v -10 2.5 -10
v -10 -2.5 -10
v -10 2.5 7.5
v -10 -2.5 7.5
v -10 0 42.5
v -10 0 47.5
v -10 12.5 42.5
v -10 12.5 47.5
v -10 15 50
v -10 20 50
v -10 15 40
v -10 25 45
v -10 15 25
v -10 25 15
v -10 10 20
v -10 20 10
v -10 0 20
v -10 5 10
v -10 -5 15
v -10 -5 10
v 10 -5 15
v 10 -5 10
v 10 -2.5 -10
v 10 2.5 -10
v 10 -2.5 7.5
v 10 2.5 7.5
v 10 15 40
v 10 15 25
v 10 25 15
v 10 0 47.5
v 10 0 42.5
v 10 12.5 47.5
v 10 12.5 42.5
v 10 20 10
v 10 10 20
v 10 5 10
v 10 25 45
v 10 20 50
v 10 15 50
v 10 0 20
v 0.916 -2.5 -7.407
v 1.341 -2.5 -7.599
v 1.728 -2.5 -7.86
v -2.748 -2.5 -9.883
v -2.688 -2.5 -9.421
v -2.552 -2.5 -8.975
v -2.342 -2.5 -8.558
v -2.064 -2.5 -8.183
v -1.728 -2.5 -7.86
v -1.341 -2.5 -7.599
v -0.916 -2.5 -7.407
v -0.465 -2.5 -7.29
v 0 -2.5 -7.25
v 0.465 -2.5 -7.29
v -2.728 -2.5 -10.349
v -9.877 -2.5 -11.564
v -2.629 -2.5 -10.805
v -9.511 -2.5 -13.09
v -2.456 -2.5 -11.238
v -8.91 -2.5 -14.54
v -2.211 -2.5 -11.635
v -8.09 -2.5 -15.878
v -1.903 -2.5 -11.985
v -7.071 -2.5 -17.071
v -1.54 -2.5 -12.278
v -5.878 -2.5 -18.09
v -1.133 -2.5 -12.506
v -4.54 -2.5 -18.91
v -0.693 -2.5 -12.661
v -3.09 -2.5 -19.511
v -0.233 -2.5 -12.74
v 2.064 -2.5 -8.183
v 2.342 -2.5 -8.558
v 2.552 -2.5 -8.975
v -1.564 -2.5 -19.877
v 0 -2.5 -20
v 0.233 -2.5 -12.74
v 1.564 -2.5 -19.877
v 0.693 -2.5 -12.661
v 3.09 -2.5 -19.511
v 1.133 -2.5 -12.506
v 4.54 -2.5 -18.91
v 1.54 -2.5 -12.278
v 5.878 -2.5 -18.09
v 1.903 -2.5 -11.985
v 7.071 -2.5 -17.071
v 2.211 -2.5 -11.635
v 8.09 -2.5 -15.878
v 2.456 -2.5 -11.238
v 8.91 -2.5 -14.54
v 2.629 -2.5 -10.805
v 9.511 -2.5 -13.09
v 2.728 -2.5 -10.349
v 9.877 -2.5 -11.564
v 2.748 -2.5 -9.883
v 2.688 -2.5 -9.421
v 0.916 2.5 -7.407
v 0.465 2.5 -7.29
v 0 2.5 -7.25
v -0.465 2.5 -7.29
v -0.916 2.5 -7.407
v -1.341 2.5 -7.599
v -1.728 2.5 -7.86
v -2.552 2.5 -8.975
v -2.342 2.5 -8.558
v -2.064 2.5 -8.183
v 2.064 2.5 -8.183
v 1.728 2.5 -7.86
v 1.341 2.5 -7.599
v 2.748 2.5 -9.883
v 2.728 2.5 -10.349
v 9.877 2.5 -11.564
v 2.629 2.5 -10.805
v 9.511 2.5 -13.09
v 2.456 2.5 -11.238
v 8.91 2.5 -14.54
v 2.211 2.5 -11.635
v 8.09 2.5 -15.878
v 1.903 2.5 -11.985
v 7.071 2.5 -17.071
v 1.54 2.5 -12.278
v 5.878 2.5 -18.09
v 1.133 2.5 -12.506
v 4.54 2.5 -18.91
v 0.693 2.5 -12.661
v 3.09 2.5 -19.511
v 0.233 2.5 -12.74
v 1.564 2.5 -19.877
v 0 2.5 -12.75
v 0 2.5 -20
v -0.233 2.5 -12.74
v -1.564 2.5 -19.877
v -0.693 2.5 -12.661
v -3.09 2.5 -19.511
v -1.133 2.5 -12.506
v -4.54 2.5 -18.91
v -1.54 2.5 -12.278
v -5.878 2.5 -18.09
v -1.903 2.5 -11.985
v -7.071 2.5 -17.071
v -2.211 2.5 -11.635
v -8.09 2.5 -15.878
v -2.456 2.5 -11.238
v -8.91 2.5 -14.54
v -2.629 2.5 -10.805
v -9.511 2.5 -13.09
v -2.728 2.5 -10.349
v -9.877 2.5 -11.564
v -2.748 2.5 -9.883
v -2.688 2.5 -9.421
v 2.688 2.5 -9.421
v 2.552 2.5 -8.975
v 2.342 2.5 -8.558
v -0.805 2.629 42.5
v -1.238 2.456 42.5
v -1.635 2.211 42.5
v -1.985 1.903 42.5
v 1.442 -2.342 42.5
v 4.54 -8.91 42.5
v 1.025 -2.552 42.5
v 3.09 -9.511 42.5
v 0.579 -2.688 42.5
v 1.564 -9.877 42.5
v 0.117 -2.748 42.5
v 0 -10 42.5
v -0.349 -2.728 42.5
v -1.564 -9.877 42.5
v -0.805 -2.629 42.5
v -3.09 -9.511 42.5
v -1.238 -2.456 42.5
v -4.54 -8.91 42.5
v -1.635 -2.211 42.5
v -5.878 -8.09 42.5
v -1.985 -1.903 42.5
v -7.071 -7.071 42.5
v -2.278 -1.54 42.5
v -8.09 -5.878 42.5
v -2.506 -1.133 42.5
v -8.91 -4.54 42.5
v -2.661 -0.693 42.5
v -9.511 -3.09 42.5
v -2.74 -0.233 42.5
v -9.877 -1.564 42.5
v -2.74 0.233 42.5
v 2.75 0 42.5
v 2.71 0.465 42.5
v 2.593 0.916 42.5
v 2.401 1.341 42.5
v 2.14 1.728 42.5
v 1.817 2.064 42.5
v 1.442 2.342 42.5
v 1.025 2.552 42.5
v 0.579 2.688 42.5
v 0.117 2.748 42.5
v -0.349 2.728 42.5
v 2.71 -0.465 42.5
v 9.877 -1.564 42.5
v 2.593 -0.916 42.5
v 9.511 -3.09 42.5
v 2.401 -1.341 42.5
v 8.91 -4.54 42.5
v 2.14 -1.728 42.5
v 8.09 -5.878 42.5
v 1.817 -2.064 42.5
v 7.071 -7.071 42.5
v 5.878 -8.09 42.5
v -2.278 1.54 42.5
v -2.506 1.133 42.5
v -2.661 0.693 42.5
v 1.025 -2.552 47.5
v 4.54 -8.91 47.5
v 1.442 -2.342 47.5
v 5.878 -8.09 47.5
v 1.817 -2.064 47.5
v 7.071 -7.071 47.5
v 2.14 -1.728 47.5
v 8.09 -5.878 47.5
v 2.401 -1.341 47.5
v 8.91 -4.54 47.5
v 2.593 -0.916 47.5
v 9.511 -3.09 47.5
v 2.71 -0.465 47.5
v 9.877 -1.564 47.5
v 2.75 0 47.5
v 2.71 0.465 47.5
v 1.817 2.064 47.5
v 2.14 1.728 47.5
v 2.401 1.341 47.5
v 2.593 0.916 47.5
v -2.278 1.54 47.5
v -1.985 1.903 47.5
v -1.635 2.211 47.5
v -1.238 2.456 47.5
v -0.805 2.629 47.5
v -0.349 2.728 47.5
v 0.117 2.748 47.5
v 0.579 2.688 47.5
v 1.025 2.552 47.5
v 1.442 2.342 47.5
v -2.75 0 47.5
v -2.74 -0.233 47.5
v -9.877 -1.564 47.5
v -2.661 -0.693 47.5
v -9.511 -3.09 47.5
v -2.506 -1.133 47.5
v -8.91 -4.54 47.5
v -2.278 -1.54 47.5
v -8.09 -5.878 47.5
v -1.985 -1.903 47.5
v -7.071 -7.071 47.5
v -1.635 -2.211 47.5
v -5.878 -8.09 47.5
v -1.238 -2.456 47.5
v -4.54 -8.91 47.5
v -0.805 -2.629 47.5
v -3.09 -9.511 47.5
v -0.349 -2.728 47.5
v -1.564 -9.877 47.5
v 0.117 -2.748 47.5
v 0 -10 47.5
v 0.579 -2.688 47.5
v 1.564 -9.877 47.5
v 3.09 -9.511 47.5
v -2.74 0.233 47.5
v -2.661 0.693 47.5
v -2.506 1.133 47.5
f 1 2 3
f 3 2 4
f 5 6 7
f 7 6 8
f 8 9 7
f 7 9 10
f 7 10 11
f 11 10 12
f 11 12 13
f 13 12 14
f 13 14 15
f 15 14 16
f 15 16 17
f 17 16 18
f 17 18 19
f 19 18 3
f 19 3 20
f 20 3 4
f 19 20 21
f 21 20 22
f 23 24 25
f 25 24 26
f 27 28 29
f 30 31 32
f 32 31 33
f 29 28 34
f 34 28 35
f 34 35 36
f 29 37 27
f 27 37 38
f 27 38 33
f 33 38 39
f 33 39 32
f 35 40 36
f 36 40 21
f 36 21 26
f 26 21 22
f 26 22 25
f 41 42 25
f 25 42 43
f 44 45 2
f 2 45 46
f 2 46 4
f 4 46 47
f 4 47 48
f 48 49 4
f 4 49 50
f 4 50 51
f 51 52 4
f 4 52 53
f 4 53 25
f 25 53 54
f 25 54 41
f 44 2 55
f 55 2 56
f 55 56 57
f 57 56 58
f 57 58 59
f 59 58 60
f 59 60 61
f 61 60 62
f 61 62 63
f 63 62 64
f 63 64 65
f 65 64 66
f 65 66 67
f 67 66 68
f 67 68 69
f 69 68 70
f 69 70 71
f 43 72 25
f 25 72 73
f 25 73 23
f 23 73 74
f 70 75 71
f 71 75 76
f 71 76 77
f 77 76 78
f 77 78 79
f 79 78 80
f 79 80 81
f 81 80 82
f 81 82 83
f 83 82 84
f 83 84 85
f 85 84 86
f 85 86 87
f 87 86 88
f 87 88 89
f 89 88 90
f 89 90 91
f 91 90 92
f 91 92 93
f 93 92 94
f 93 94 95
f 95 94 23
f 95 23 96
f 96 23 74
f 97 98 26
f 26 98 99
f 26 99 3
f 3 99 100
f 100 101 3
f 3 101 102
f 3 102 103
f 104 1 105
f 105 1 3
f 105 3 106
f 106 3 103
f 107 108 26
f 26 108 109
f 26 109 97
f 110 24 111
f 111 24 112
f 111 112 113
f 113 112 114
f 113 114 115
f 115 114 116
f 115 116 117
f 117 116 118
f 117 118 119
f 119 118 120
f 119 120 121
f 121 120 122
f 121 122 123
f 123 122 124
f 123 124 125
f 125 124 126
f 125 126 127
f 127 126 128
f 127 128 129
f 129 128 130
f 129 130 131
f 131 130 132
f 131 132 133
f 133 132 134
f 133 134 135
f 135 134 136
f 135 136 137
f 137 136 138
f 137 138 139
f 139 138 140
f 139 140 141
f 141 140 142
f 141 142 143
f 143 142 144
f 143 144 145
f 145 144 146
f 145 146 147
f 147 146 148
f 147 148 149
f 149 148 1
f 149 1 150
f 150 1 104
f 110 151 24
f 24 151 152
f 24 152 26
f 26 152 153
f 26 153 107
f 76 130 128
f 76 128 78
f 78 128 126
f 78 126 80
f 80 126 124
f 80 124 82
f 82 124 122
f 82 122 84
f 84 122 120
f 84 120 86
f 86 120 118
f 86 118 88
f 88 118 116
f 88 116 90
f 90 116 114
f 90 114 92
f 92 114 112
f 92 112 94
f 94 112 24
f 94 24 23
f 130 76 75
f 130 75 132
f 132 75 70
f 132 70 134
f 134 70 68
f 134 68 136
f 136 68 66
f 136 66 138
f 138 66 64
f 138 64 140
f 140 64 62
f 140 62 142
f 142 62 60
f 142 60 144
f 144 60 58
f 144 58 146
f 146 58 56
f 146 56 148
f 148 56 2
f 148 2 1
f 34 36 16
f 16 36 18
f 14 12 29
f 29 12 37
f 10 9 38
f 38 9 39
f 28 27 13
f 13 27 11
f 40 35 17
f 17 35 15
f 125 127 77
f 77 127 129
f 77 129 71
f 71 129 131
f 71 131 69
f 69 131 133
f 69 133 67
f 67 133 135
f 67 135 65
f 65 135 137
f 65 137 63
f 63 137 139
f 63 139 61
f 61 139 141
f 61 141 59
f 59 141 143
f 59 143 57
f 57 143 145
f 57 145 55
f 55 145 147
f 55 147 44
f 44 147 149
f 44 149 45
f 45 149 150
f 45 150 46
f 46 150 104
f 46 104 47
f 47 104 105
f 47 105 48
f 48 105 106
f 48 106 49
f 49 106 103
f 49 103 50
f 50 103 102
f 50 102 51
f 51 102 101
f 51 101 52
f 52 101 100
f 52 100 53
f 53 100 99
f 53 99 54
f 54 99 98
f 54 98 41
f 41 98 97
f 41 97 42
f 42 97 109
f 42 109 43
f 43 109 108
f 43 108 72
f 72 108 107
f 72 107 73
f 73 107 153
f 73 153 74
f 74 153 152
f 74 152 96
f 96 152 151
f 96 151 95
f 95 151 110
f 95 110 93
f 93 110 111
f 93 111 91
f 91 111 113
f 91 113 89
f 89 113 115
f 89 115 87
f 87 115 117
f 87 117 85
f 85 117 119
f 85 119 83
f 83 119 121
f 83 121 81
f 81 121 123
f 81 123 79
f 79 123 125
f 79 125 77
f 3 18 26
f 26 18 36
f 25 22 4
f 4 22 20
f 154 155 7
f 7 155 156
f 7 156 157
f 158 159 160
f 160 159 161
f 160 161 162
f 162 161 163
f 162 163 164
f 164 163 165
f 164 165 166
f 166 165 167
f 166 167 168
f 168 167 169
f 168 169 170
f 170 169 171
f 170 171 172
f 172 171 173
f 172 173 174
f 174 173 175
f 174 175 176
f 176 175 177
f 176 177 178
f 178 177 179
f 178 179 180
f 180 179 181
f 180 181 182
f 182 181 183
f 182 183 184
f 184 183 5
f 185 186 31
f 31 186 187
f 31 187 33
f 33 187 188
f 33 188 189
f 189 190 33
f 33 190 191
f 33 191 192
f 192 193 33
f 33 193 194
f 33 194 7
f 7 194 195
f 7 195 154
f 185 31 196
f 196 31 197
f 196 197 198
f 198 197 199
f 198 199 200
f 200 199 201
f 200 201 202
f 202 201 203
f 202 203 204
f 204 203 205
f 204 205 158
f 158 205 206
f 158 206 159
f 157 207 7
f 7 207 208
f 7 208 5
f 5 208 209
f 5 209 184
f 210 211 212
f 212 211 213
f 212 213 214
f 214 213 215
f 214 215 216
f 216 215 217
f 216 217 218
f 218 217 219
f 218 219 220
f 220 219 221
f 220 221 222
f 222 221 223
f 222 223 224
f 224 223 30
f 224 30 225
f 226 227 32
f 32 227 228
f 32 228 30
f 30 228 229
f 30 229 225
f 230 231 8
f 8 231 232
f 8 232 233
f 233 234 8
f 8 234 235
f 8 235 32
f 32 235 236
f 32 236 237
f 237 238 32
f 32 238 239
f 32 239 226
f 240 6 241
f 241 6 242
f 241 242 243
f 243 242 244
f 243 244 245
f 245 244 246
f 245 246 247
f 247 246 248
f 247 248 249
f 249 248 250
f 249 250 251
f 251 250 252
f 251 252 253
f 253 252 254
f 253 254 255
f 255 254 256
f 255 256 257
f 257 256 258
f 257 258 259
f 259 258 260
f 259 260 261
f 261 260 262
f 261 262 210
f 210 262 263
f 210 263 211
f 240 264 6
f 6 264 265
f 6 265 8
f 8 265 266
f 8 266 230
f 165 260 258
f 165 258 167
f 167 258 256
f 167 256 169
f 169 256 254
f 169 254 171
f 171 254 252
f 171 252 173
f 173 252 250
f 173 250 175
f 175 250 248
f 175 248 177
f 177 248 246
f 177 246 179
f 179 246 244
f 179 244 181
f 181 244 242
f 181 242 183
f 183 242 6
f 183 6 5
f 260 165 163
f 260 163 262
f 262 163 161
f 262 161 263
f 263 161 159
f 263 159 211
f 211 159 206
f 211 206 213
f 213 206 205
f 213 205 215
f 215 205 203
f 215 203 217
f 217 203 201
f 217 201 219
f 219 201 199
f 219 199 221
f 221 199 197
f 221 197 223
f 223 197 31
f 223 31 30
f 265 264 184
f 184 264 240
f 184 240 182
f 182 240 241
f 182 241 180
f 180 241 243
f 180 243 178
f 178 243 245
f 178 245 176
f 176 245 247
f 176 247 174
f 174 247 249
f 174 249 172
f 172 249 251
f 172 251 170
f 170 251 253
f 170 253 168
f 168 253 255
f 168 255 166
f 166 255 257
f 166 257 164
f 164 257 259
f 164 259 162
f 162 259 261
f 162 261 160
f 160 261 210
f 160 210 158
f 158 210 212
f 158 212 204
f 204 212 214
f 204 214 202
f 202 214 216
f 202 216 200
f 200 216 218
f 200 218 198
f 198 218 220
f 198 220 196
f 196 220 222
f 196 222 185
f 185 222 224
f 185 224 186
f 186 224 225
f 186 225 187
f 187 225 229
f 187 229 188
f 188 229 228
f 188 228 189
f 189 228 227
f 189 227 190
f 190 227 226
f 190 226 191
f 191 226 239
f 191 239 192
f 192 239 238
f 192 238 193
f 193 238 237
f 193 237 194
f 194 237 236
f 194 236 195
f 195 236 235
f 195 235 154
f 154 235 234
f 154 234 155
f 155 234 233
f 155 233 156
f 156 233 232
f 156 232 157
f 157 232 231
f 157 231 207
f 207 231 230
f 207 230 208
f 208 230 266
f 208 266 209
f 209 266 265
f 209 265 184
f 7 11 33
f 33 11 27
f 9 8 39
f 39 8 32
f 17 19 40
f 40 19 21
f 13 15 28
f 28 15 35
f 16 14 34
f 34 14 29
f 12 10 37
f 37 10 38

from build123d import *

# Parameters (mm, degrees)
SKETCH1_W               = 20
SKETCH1_H               = 10
BOSS_EXTRUDE1_DEPTH     = 10
SKETCH3_W               = 20
SKETCH3_H               = 5
BOSS_EXTRUDE2_DEPTH     = 20
FILLET1_R               = 10
BOSS_EXTRUDE3_DEPTH     = 20
CUT_EXTRUDE1_DEPTH      = 56.733742024
CUT_EXTRUDE1_DEPTH_BACK = 56.733742024
SKETCH5_R               = 2.75
CHAMFER1_SIZE           = 10
SKETCH6_W               = 20
SKETCH6_H               = 5
BOSS_EXTRUDE4_DEPTH     = 20
FILLET2_R               = 10
CUT_EXTRUDE2_DEPTH      = 73.672209269
CUT_EXTRUDE2_DEPTH_BACK = 5
SKETCH7_R               = 2.75
CHAMFER2_SIZE           = 5
CHAMFER3_SIZE           = 5


# Some blends are built 0.0001 mm under size
with BuildPart() as part:
    # Sketch1 → Boss-Extrude1 (new body)
    with BuildSketch(Plane.XY):
        Rectangle(SKETCH1_W, SKETCH1_H)
    extrude(amount=BOSS_EXTRUDE1_DEPTH)

    # Sketch3 → Boss-Extrude2 (add)
    with BuildSketch(Plane(origin=(0, 0, 0), x_dir=(-1, 0, 0), z_dir=(0, 0, -1))):
        Rectangle(SKETCH3_W, SKETCH3_H)
    extrude(amount=BOSS_EXTRUDE2_DEPTH)

    # Fillet1
    fillet1_edges = [part.edges().sort_by_distance(p)[0] for p in [
        (-10, 0, -20),
        (10, 0, -20),
    ]]
    fillet(fillet1_edges, radius=FILLET1_R - 0.0001)  # a hair under: the kernel refuses the full size

    # Sketch4 → Boss-Extrude3 (add)
    with BuildSketch(Plane.ZY.offset(10)):
        Polygon((20, -5), (20, 15), (40, 15), (40, 10), (50, 10), (50, 25), (10, 25), (10, -5), align=None)
    extrude(amount=-BOSS_EXTRUDE3_DEPTH)

    # Sketch5 → Cut-Extrude1 (cut, two sides: drawn at the far end of the back side and taken through both)
    with BuildSketch(Plane(origin=(0, 2.5, 0), x_dir=(1, 0, 0), z_dir=(0, 1, 0)).offset(-CUT_EXTRUDE1_DEPTH_BACK)):
        with Locations(Location((0, 10, 0), (0, 0, 270))):
            Circle(SKETCH5_R)
    extrude(amount=CUT_EXTRUDE1_DEPTH + CUT_EXTRUDE1_DEPTH_BACK, mode=Mode.SUBTRACT)

    # Chamfer1
    # the kernel refuses this chamfer: 10 mm, written as the material it takes off along each edge
    with BuildSketch(Plane(origin=(35.71682988, 5, 0), x_dir=(0, -0.9996219169112968, -0.027495876610586372), z_dir=(-1, 0, 0))) as chamfer1_piece_1_section:
        Polygon((CHAMFER1_SIZE * 0.999621916911, CHAMFER1_SIZE * 0.0274958766106), (-CHAMFER1_SIZE * 0.0274958766106, CHAMFER1_SIZE * 0.999621916911), (0, 0), align=None)
    chamfer1_piece_1 = extrude(amount=71.433659759, mode=Mode.PRIVATE)
    chamfer1_piece_1 = split(chamfer1_piece_1, bisect_by=Plane(origin=(0, -2.5, 0.578931494), z_dir=(0, -1, 0)), keep=Keep.TOP, mode=Mode.PRIVATE)
    add(chamfer1_piece_1, mode=Mode.SUBTRACT)
    with BuildSketch(Plane(origin=(35.71682988, 5, 0), x_dir=(0, -0.9996219169112968, -0.027495876610586372), z_dir=(-1, 0, 0))) as chamfer1_piece_2_section:
        Polygon((CHAMFER1_SIZE * 0.999621916911, CHAMFER1_SIZE * 0.0274958766106), (-CHAMFER1_SIZE * 0.0274958766106, CHAMFER1_SIZE * 0.999621916911), (0, 0), align=None)
    chamfer1_piece_2 = extrude(amount=71.433659759, mode=Mode.PRIVATE)
    chamfer1_piece_2 = split(chamfer1_piece_2, bisect_by=Plane(origin=(0, 2.5, 4.466280687), z_dir=(0, 1, 0)), keep=Keep.TOP, mode=Mode.PRIVATE)
    chamfer1_piece_2 = split(chamfer1_piece_2, bisect_by=Plane(origin=(0, 3.939233337, 10), z_dir=(0, 0, -1)), keep=Keep.TOP, mode=Mode.PRIVATE)
    add(chamfer1_piece_2, mode=Mode.SUBTRACT)
    with BuildSketch(Plane(origin=(-35.71682988, -5, 0), x_dir=(0, -0.027495876610586403, 0.9996219169112968), z_dir=(1, 0, 0))) as chamfer1_piece_3_section:
        Polygon((CHAMFER1_SIZE * 0.999621916911, -CHAMFER1_SIZE * 0.0274958766106), (-CHAMFER1_SIZE * 0.0274958766106, -CHAMFER1_SIZE * 0.999621916911), (0, 0), align=None)
    chamfer1_piece_3 = extrude(amount=71.433659759, mode=Mode.PRIVATE)
    chamfer1_piece_3 = split(chamfer1_piece_3, bisect_by=Plane(origin=(0, -2.5, 4.487529346), z_dir=(0, -1, 0)), keep=Keep.TOP, mode=Mode.PRIVATE)
    add(chamfer1_piece_3, mode=Mode.SUBTRACT)
    with BuildSketch(Plane(origin=(-35.71682988, -5, 0), x_dir=(0, -0.027495876610586403, 0.9996219169112968), z_dir=(1, 0, 0))) as chamfer1_piece_4_section:
        Polygon((CHAMFER1_SIZE * 0.999621916911, -CHAMFER1_SIZE * 0.0274958766106), (-CHAMFER1_SIZE * 0.0274958766106, -CHAMFER1_SIZE * 0.999621916911), (0, 0), align=None)
    chamfer1_piece_4 = extrude(amount=71.433659759, mode=Mode.PRIVATE)
    chamfer1_piece_4 = split(chamfer1_piece_4, bisect_by=Plane(origin=(0, 2.5, 0.578931494), z_dir=(0, 1, 0)), keep=Keep.TOP, mode=Mode.PRIVATE)
    add(chamfer1_piece_4, mode=Mode.SUBTRACT)

    # Sketch6 → Boss-Extrude4 (add)
    with BuildSketch(Plane.XZ.offset(-10)):
        with Locations((0, 45)):
            Rectangle(SKETCH6_W, SKETCH6_H)
    extrude(amount=BOSS_EXTRUDE4_DEPTH)

    # Fillet2
    fillet2_edges = [part.edges().sort_by_distance(p)[0] for p in [
        (10, -10, 45),
        (-10, -10, 45),
    ]]
    fillet(fillet2_edges, radius=FILLET2_R - 0.0001)  # a hair under: the kernel refuses the full size

    # Sketch7 → Cut-Extrude2 (cut, two sides: drawn at the far end of the back side and taken through both)
    with BuildSketch(Plane.XY.offset(47.5).offset(-CUT_EXTRUDE2_DEPTH_BACK)):
        Circle(SKETCH7_R)
    extrude(amount=CUT_EXTRUDE2_DEPTH + CUT_EXTRUDE2_DEPTH_BACK, mode=Mode.SUBTRACT)

    # Chamfer2
    # the kernel refuses this chamfer: 5 mm, written as the material it takes off along each edge
    with BuildSketch(Plane(origin=(-22.85841494, 10, 40), x_dir=(0, -0.027495876610586317, 0.9996219169112968), z_dir=(1, 0, 0))) as chamfer2_piece_1_section:
        Polygon((CHAMFER2_SIZE * 0.999621916911, -CHAMFER2_SIZE * 0.0274958766106), (-CHAMFER2_SIZE * 0.0274958766106, -CHAMFER2_SIZE * 0.999621916911), (0, 0), align=None)
    chamfer2_piece_1 = extrude(amount=45.71682988, mode=Mode.PRIVATE)
    chamfer2_piece_1 = split(chamfer2_piece_1, bisect_by=Plane(origin=(0, 11.959930185, 42.5), z_dir=(0, 0, -1)), keep=Keep.TOP, mode=Mode.PRIVATE)
    chamfer2_piece_1 = split(chamfer2_piece_1, bisect_by=Plane(origin=(0, 15, 41.043890797), z_dir=(0, -1, 0)), keep=Keep.TOP, mode=Mode.PRIVATE)
    add(chamfer2_piece_1, mode=Mode.SUBTRACT)
    with BuildSketch(Plane(origin=(-22.85841494, 10, 50), x_dir=(0, -0.027495876610586317, -0.9996219169112968), z_dir=(1, 0, 0))) as chamfer2_piece_2_section:
        Polygon((CHAMFER2_SIZE * 0.999621916911, CHAMFER2_SIZE * 0.0274958766106), (-CHAMFER2_SIZE * 0.0274958766106, CHAMFER2_SIZE * 0.999621916911), (0, 0), align=None)
    chamfer2_piece_2 = extrude(amount=45.71682988, mode=Mode.PRIVATE)
    chamfer2_piece_2 = split(chamfer2_piece_2, bisect_by=Plane(origin=(0, 11.967005421, 47.5), z_dir=(0, 0, 1)), keep=Keep.TOP, mode=Mode.PRIVATE)
    add(chamfer2_piece_2, mode=Mode.SUBTRACT)

    # Chamfer3
    chamfer3_edges = [part.edges().sort_by_distance(p)[0] for p in [
        (0, 25, 10),
        (0, 25, 50),
        (0, 15, 20),
        (0, -5, 20),
    ]]
    chamfer(chamfer3_edges, length=CHAMFER3_SIZE)


solid = part.part
